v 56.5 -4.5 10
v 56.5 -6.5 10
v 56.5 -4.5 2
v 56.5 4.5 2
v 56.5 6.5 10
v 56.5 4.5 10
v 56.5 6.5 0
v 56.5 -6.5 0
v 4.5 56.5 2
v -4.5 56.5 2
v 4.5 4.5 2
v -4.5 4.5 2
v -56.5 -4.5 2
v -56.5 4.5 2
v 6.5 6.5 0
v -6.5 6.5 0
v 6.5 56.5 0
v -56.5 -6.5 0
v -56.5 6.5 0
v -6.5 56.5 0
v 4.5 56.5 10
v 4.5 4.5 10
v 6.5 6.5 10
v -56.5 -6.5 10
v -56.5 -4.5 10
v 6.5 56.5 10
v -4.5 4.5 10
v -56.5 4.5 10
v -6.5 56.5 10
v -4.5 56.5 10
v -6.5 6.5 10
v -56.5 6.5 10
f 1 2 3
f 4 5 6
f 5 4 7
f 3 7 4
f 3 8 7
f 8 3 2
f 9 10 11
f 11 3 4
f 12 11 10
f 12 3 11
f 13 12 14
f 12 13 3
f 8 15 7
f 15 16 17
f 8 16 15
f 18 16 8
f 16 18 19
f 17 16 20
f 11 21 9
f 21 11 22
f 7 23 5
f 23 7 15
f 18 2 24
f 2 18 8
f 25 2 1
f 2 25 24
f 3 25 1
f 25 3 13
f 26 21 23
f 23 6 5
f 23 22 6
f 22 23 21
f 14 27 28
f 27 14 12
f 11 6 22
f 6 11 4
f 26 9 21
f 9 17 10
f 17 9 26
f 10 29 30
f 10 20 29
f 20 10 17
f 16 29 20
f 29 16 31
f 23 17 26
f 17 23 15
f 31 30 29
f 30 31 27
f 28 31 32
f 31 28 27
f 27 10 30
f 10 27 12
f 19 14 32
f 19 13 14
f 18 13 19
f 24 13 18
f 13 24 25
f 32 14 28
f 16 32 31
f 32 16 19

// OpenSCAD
// file: common.scad
CENTER_SIZE = 9;
SLEEVE_REACH = 56.5;
GROOVE_WIDTH = 9;
WALL_HEIGHT = 10;
WALL_THICKNESS = 2;
BASE_THICKNESS = 2;
TOTAL_WIDTH = GROOVE_WIDTH + 2 * WALL_THICKNESS;
SLEEVE_LENGTH = SLEEVE_REACH - CENTER_SIZE/2;
DOWEL_DIAMETER = 4.5;
DOWEL_DEPTH = 3;
CARDBOARD_THICKNESS = 2;
GROOVE_BOTTOM = CARDBOARD_THICKNESS;
CURVE_POWER = 2;
CURVE_POINTS = 20;
TILT_ANGLE_EXTRA = 5;
FLEXIBLE_WALL_HEIGHT = WALL_HEIGHT * 2;
function wall_curve(z) =
    GROOVE_BOTTOM/2 + (GROOVE_WIDTH/2 - GROOVE_BOTTOM/2) * pow(z/(FLEXIBLE_WALL_HEIGHT - BASE_THICKNESS), CURVE_POWER);
module curved_wall_profile(side) {
    wall_h = FLEXIBLE_WALL_HEIGHT - BASE_THICKNESS;
    points_inner = [for (i = [0:CURVE_POINTS])
        [wall_curve(i * wall_h / CURVE_POINTS) * side,
         i * wall_h / CURVE_POINTS]
    ];
    points_outer = [for (i = [0:CURVE_POINTS])
        [(wall_curve(i * wall_h / CURVE_POINTS) + WALL_THICKNESS) * side,
         i * wall_h / CURVE_POINTS]
    ];
    all_points = concat(
        [[points_inner[0][0], 0]],
        points_inner,
        [points_outer[len(points_outer)-1]],
        [for (i = [len(points_outer)-1:-1:0]) points_outer[i]],
        [[points_outer[0][0], 0]]
    );
    polygon(all_points);
}
module draw_regular_wall_base(width) {
    translate([0, 0, BASE_THICKNESS])
        cube([width, WALL_THICKNESS, WALL_HEIGHT - BASE_THICKNESS]);
}
module draw_flexible_wall_base(width) {
    tilt_angle = atan((GROOVE_WIDTH/2 - GROOVE_BOTTOM/2) / (FLEXIBLE_WALL_HEIGHT - BASE_THICKNESS)) + TILT_ANGLE_EXTRA;
    rotate([0, 0, 90])
        rotate([tilt_angle + 6, 0, 0])
            rotate([90, 0, 90])
                linear_extrude(height = width)
                    curved_wall_profile(1);
}
module draw_center_base(with_dowel = false) {
    union() {
        translate([-TOTAL_WIDTH/2, -TOTAL_WIDTH/2, 0])
            cube([TOTAL_WIDTH, TOTAL_WIDTH, BASE_THICKNESS]);
        if (with_dowel) {
            translate([0, 0, -DOWEL_DEPTH])
                cylinder(h=DOWEL_DEPTH, d=DOWEL_DIAMETER, $fn=30);
        }
    }
}
module place_regular_center_wall(side) {
    if (side == 0) {
        translate([CENTER_SIZE/2 + WALL_THICKNESS, -TOTAL_WIDTH/2, 0])
            rotate([0, 0, 90])
                draw_regular_wall_base(TOTAL_WIDTH);
    } else if (side == 1) {
        translate([-TOTAL_WIDTH/2, CENTER_SIZE/2, 0])
            draw_regular_wall_base(TOTAL_WIDTH);
    } else if (side == 2) {
        translate([-CENTER_SIZE/2, -TOTAL_WIDTH/2, 0])
            rotate([0, 0, 90])
                draw_regular_wall_base(TOTAL_WIDTH);
    } else if (side == 3) {
        translate([-TOTAL_WIDTH/2, -CENTER_SIZE/2 - WALL_THICKNESS, 0])
            draw_regular_wall_base(TOTAL_WIDTH);
    }
}
module place_flexible_center_wall(side) {
    if (side == 0) {
        translate([CENTER_SIZE/2 - WALL_THICKNESS/2, TOTAL_WIDTH/2, 0])
            rotate([0, 0, 180])
                draw_flexible_wall_base(TOTAL_WIDTH);
    } else if (side == 1) {
        translate([-TOTAL_WIDTH/2, CENTER_SIZE/2 - WALL_THICKNESS/2, 0])
            rotate([0, 0, 270])
                draw_flexible_wall_base(TOTAL_WIDTH);
    } else if (side == 2) {
        translate([-CENTER_SIZE/2 + WALL_THICKNESS/2, -TOTAL_WIDTH/2, 0])
            draw_flexible_wall_base(TOTAL_WIDTH);
    } else if (side == 3) {
        translate([CENTER_SIZE/2 + WALL_THICKNESS, -TOTAL_WIDTH/2 + WALL_THICKNESS + WALL_THICKNESS/2, 0])
            rotate([0, 0, 90])
                draw_flexible_wall_base(TOTAL_WIDTH);
    }
}
module place_center_wall(side, wall_type = "regular") {
    if (wall_type == "regular") {
        place_regular_center_wall(side);
    } else if (wall_type == "flexible") {
        place_flexible_center_wall(side);
    }
}
module draw_sleeve_base(with_dowel = false) {
    union() {
        translate([0, -TOTAL_WIDTH/2, 0])
            cube([SLEEVE_LENGTH, TOTAL_WIDTH, BASE_THICKNESS]);
        if (with_dowel) {
            translate([25 - CENTER_SIZE/2, 0, -DOWEL_DEPTH])
                cylinder(h=DOWEL_DEPTH, d=DOWEL_DIAMETER, $fn=30);
            translate([50 - CENTER_SIZE/2, 0, -DOWEL_DEPTH])
                cylinder(h=DOWEL_DEPTH, d=DOWEL_DIAMETER, $fn=30);
        }
    }
}
module draw_regular_sleeve_wall(wall_side) {
    y_offset = (wall_side == "left") ? -TOTAL_WIDTH/2 : TOTAL_WIDTH/2 - WALL_THICKNESS;
    translate([0, y_offset, 0])
        draw_regular_wall_base(SLEEVE_LENGTH);
}
module draw_flexible_sleeve_wall(side) {
    if (side == "left") {
        translate([0, TOTAL_WIDTH/2 - WALL_THICKNESS/2 - WALL_THICKNESS, 0])
            rotate([0, 0, 270])
                draw_flexible_wall_base(SLEEVE_LENGTH);
    } else if (side == "right") {
        translate([SLEEVE_LENGTH, -TOTAL_WIDTH/2 + WALL_THICKNESS + WALL_THICKNESS/2, 0])
            rotate([0, 0, 90])
                draw_flexible_wall_base(SLEEVE_LENGTH);
    }
}
module draw_sleeve_wall(wall_side, wall_type = "regular") {
    if (wall_type == "regular") {
        draw_regular_sleeve_wall(wall_side);
    } else if (wall_type == "flexible") {
        draw_flexible_sleeve_wall(wall_side);
    }
}
module draw_full_sleeve(with_dowel = false, wall_type = "regular") {
    union() {
        draw_sleeve_base(with_dowel);
        draw_sleeve_wall("left", wall_type);
        draw_sleeve_wall("right", wall_type);
    }
}
module place_sleeve(side, with_dowel = false, wall_type = "regular") {
    if (side == 0) {
        translate([CENTER_SIZE/2, 0, 0])
            draw_full_sleeve(with_dowel, wall_type);
    } else if (side == 1) {
        rotate([0, 0, 90])
            translate([CENTER_SIZE/2, 0, 0])
                draw_full_sleeve(with_dowel, wall_type);
    } else if (side == 2) {
        rotate([0, 0, 180])
            translate([CENTER_SIZE/2, 0, 0])
                draw_full_sleeve(with_dowel, wall_type);
    } else if (side == 3) {
        rotate([0, 0, 270])
            translate([CENTER_SIZE/2, 0, 0])
                draw_full_sleeve(with_dowel, wall_type);
    }
}
module add_dowel(x, y, dowel_diameter, dowel_depth) {
    translate([x, y, -dowel_depth])
        cylinder(h=dowel_depth, d=dowel_diameter, $fn=30);
}
// main file
use <common.scad>

union() {
    draw_center_base(with_dowel = false);
    place_center_wall(3);
    place_sleeve(0, with_dowel = false);
    place_sleeve(1, with_dowel = false);
    place_sleeve(2, with_dowel = false);
}
